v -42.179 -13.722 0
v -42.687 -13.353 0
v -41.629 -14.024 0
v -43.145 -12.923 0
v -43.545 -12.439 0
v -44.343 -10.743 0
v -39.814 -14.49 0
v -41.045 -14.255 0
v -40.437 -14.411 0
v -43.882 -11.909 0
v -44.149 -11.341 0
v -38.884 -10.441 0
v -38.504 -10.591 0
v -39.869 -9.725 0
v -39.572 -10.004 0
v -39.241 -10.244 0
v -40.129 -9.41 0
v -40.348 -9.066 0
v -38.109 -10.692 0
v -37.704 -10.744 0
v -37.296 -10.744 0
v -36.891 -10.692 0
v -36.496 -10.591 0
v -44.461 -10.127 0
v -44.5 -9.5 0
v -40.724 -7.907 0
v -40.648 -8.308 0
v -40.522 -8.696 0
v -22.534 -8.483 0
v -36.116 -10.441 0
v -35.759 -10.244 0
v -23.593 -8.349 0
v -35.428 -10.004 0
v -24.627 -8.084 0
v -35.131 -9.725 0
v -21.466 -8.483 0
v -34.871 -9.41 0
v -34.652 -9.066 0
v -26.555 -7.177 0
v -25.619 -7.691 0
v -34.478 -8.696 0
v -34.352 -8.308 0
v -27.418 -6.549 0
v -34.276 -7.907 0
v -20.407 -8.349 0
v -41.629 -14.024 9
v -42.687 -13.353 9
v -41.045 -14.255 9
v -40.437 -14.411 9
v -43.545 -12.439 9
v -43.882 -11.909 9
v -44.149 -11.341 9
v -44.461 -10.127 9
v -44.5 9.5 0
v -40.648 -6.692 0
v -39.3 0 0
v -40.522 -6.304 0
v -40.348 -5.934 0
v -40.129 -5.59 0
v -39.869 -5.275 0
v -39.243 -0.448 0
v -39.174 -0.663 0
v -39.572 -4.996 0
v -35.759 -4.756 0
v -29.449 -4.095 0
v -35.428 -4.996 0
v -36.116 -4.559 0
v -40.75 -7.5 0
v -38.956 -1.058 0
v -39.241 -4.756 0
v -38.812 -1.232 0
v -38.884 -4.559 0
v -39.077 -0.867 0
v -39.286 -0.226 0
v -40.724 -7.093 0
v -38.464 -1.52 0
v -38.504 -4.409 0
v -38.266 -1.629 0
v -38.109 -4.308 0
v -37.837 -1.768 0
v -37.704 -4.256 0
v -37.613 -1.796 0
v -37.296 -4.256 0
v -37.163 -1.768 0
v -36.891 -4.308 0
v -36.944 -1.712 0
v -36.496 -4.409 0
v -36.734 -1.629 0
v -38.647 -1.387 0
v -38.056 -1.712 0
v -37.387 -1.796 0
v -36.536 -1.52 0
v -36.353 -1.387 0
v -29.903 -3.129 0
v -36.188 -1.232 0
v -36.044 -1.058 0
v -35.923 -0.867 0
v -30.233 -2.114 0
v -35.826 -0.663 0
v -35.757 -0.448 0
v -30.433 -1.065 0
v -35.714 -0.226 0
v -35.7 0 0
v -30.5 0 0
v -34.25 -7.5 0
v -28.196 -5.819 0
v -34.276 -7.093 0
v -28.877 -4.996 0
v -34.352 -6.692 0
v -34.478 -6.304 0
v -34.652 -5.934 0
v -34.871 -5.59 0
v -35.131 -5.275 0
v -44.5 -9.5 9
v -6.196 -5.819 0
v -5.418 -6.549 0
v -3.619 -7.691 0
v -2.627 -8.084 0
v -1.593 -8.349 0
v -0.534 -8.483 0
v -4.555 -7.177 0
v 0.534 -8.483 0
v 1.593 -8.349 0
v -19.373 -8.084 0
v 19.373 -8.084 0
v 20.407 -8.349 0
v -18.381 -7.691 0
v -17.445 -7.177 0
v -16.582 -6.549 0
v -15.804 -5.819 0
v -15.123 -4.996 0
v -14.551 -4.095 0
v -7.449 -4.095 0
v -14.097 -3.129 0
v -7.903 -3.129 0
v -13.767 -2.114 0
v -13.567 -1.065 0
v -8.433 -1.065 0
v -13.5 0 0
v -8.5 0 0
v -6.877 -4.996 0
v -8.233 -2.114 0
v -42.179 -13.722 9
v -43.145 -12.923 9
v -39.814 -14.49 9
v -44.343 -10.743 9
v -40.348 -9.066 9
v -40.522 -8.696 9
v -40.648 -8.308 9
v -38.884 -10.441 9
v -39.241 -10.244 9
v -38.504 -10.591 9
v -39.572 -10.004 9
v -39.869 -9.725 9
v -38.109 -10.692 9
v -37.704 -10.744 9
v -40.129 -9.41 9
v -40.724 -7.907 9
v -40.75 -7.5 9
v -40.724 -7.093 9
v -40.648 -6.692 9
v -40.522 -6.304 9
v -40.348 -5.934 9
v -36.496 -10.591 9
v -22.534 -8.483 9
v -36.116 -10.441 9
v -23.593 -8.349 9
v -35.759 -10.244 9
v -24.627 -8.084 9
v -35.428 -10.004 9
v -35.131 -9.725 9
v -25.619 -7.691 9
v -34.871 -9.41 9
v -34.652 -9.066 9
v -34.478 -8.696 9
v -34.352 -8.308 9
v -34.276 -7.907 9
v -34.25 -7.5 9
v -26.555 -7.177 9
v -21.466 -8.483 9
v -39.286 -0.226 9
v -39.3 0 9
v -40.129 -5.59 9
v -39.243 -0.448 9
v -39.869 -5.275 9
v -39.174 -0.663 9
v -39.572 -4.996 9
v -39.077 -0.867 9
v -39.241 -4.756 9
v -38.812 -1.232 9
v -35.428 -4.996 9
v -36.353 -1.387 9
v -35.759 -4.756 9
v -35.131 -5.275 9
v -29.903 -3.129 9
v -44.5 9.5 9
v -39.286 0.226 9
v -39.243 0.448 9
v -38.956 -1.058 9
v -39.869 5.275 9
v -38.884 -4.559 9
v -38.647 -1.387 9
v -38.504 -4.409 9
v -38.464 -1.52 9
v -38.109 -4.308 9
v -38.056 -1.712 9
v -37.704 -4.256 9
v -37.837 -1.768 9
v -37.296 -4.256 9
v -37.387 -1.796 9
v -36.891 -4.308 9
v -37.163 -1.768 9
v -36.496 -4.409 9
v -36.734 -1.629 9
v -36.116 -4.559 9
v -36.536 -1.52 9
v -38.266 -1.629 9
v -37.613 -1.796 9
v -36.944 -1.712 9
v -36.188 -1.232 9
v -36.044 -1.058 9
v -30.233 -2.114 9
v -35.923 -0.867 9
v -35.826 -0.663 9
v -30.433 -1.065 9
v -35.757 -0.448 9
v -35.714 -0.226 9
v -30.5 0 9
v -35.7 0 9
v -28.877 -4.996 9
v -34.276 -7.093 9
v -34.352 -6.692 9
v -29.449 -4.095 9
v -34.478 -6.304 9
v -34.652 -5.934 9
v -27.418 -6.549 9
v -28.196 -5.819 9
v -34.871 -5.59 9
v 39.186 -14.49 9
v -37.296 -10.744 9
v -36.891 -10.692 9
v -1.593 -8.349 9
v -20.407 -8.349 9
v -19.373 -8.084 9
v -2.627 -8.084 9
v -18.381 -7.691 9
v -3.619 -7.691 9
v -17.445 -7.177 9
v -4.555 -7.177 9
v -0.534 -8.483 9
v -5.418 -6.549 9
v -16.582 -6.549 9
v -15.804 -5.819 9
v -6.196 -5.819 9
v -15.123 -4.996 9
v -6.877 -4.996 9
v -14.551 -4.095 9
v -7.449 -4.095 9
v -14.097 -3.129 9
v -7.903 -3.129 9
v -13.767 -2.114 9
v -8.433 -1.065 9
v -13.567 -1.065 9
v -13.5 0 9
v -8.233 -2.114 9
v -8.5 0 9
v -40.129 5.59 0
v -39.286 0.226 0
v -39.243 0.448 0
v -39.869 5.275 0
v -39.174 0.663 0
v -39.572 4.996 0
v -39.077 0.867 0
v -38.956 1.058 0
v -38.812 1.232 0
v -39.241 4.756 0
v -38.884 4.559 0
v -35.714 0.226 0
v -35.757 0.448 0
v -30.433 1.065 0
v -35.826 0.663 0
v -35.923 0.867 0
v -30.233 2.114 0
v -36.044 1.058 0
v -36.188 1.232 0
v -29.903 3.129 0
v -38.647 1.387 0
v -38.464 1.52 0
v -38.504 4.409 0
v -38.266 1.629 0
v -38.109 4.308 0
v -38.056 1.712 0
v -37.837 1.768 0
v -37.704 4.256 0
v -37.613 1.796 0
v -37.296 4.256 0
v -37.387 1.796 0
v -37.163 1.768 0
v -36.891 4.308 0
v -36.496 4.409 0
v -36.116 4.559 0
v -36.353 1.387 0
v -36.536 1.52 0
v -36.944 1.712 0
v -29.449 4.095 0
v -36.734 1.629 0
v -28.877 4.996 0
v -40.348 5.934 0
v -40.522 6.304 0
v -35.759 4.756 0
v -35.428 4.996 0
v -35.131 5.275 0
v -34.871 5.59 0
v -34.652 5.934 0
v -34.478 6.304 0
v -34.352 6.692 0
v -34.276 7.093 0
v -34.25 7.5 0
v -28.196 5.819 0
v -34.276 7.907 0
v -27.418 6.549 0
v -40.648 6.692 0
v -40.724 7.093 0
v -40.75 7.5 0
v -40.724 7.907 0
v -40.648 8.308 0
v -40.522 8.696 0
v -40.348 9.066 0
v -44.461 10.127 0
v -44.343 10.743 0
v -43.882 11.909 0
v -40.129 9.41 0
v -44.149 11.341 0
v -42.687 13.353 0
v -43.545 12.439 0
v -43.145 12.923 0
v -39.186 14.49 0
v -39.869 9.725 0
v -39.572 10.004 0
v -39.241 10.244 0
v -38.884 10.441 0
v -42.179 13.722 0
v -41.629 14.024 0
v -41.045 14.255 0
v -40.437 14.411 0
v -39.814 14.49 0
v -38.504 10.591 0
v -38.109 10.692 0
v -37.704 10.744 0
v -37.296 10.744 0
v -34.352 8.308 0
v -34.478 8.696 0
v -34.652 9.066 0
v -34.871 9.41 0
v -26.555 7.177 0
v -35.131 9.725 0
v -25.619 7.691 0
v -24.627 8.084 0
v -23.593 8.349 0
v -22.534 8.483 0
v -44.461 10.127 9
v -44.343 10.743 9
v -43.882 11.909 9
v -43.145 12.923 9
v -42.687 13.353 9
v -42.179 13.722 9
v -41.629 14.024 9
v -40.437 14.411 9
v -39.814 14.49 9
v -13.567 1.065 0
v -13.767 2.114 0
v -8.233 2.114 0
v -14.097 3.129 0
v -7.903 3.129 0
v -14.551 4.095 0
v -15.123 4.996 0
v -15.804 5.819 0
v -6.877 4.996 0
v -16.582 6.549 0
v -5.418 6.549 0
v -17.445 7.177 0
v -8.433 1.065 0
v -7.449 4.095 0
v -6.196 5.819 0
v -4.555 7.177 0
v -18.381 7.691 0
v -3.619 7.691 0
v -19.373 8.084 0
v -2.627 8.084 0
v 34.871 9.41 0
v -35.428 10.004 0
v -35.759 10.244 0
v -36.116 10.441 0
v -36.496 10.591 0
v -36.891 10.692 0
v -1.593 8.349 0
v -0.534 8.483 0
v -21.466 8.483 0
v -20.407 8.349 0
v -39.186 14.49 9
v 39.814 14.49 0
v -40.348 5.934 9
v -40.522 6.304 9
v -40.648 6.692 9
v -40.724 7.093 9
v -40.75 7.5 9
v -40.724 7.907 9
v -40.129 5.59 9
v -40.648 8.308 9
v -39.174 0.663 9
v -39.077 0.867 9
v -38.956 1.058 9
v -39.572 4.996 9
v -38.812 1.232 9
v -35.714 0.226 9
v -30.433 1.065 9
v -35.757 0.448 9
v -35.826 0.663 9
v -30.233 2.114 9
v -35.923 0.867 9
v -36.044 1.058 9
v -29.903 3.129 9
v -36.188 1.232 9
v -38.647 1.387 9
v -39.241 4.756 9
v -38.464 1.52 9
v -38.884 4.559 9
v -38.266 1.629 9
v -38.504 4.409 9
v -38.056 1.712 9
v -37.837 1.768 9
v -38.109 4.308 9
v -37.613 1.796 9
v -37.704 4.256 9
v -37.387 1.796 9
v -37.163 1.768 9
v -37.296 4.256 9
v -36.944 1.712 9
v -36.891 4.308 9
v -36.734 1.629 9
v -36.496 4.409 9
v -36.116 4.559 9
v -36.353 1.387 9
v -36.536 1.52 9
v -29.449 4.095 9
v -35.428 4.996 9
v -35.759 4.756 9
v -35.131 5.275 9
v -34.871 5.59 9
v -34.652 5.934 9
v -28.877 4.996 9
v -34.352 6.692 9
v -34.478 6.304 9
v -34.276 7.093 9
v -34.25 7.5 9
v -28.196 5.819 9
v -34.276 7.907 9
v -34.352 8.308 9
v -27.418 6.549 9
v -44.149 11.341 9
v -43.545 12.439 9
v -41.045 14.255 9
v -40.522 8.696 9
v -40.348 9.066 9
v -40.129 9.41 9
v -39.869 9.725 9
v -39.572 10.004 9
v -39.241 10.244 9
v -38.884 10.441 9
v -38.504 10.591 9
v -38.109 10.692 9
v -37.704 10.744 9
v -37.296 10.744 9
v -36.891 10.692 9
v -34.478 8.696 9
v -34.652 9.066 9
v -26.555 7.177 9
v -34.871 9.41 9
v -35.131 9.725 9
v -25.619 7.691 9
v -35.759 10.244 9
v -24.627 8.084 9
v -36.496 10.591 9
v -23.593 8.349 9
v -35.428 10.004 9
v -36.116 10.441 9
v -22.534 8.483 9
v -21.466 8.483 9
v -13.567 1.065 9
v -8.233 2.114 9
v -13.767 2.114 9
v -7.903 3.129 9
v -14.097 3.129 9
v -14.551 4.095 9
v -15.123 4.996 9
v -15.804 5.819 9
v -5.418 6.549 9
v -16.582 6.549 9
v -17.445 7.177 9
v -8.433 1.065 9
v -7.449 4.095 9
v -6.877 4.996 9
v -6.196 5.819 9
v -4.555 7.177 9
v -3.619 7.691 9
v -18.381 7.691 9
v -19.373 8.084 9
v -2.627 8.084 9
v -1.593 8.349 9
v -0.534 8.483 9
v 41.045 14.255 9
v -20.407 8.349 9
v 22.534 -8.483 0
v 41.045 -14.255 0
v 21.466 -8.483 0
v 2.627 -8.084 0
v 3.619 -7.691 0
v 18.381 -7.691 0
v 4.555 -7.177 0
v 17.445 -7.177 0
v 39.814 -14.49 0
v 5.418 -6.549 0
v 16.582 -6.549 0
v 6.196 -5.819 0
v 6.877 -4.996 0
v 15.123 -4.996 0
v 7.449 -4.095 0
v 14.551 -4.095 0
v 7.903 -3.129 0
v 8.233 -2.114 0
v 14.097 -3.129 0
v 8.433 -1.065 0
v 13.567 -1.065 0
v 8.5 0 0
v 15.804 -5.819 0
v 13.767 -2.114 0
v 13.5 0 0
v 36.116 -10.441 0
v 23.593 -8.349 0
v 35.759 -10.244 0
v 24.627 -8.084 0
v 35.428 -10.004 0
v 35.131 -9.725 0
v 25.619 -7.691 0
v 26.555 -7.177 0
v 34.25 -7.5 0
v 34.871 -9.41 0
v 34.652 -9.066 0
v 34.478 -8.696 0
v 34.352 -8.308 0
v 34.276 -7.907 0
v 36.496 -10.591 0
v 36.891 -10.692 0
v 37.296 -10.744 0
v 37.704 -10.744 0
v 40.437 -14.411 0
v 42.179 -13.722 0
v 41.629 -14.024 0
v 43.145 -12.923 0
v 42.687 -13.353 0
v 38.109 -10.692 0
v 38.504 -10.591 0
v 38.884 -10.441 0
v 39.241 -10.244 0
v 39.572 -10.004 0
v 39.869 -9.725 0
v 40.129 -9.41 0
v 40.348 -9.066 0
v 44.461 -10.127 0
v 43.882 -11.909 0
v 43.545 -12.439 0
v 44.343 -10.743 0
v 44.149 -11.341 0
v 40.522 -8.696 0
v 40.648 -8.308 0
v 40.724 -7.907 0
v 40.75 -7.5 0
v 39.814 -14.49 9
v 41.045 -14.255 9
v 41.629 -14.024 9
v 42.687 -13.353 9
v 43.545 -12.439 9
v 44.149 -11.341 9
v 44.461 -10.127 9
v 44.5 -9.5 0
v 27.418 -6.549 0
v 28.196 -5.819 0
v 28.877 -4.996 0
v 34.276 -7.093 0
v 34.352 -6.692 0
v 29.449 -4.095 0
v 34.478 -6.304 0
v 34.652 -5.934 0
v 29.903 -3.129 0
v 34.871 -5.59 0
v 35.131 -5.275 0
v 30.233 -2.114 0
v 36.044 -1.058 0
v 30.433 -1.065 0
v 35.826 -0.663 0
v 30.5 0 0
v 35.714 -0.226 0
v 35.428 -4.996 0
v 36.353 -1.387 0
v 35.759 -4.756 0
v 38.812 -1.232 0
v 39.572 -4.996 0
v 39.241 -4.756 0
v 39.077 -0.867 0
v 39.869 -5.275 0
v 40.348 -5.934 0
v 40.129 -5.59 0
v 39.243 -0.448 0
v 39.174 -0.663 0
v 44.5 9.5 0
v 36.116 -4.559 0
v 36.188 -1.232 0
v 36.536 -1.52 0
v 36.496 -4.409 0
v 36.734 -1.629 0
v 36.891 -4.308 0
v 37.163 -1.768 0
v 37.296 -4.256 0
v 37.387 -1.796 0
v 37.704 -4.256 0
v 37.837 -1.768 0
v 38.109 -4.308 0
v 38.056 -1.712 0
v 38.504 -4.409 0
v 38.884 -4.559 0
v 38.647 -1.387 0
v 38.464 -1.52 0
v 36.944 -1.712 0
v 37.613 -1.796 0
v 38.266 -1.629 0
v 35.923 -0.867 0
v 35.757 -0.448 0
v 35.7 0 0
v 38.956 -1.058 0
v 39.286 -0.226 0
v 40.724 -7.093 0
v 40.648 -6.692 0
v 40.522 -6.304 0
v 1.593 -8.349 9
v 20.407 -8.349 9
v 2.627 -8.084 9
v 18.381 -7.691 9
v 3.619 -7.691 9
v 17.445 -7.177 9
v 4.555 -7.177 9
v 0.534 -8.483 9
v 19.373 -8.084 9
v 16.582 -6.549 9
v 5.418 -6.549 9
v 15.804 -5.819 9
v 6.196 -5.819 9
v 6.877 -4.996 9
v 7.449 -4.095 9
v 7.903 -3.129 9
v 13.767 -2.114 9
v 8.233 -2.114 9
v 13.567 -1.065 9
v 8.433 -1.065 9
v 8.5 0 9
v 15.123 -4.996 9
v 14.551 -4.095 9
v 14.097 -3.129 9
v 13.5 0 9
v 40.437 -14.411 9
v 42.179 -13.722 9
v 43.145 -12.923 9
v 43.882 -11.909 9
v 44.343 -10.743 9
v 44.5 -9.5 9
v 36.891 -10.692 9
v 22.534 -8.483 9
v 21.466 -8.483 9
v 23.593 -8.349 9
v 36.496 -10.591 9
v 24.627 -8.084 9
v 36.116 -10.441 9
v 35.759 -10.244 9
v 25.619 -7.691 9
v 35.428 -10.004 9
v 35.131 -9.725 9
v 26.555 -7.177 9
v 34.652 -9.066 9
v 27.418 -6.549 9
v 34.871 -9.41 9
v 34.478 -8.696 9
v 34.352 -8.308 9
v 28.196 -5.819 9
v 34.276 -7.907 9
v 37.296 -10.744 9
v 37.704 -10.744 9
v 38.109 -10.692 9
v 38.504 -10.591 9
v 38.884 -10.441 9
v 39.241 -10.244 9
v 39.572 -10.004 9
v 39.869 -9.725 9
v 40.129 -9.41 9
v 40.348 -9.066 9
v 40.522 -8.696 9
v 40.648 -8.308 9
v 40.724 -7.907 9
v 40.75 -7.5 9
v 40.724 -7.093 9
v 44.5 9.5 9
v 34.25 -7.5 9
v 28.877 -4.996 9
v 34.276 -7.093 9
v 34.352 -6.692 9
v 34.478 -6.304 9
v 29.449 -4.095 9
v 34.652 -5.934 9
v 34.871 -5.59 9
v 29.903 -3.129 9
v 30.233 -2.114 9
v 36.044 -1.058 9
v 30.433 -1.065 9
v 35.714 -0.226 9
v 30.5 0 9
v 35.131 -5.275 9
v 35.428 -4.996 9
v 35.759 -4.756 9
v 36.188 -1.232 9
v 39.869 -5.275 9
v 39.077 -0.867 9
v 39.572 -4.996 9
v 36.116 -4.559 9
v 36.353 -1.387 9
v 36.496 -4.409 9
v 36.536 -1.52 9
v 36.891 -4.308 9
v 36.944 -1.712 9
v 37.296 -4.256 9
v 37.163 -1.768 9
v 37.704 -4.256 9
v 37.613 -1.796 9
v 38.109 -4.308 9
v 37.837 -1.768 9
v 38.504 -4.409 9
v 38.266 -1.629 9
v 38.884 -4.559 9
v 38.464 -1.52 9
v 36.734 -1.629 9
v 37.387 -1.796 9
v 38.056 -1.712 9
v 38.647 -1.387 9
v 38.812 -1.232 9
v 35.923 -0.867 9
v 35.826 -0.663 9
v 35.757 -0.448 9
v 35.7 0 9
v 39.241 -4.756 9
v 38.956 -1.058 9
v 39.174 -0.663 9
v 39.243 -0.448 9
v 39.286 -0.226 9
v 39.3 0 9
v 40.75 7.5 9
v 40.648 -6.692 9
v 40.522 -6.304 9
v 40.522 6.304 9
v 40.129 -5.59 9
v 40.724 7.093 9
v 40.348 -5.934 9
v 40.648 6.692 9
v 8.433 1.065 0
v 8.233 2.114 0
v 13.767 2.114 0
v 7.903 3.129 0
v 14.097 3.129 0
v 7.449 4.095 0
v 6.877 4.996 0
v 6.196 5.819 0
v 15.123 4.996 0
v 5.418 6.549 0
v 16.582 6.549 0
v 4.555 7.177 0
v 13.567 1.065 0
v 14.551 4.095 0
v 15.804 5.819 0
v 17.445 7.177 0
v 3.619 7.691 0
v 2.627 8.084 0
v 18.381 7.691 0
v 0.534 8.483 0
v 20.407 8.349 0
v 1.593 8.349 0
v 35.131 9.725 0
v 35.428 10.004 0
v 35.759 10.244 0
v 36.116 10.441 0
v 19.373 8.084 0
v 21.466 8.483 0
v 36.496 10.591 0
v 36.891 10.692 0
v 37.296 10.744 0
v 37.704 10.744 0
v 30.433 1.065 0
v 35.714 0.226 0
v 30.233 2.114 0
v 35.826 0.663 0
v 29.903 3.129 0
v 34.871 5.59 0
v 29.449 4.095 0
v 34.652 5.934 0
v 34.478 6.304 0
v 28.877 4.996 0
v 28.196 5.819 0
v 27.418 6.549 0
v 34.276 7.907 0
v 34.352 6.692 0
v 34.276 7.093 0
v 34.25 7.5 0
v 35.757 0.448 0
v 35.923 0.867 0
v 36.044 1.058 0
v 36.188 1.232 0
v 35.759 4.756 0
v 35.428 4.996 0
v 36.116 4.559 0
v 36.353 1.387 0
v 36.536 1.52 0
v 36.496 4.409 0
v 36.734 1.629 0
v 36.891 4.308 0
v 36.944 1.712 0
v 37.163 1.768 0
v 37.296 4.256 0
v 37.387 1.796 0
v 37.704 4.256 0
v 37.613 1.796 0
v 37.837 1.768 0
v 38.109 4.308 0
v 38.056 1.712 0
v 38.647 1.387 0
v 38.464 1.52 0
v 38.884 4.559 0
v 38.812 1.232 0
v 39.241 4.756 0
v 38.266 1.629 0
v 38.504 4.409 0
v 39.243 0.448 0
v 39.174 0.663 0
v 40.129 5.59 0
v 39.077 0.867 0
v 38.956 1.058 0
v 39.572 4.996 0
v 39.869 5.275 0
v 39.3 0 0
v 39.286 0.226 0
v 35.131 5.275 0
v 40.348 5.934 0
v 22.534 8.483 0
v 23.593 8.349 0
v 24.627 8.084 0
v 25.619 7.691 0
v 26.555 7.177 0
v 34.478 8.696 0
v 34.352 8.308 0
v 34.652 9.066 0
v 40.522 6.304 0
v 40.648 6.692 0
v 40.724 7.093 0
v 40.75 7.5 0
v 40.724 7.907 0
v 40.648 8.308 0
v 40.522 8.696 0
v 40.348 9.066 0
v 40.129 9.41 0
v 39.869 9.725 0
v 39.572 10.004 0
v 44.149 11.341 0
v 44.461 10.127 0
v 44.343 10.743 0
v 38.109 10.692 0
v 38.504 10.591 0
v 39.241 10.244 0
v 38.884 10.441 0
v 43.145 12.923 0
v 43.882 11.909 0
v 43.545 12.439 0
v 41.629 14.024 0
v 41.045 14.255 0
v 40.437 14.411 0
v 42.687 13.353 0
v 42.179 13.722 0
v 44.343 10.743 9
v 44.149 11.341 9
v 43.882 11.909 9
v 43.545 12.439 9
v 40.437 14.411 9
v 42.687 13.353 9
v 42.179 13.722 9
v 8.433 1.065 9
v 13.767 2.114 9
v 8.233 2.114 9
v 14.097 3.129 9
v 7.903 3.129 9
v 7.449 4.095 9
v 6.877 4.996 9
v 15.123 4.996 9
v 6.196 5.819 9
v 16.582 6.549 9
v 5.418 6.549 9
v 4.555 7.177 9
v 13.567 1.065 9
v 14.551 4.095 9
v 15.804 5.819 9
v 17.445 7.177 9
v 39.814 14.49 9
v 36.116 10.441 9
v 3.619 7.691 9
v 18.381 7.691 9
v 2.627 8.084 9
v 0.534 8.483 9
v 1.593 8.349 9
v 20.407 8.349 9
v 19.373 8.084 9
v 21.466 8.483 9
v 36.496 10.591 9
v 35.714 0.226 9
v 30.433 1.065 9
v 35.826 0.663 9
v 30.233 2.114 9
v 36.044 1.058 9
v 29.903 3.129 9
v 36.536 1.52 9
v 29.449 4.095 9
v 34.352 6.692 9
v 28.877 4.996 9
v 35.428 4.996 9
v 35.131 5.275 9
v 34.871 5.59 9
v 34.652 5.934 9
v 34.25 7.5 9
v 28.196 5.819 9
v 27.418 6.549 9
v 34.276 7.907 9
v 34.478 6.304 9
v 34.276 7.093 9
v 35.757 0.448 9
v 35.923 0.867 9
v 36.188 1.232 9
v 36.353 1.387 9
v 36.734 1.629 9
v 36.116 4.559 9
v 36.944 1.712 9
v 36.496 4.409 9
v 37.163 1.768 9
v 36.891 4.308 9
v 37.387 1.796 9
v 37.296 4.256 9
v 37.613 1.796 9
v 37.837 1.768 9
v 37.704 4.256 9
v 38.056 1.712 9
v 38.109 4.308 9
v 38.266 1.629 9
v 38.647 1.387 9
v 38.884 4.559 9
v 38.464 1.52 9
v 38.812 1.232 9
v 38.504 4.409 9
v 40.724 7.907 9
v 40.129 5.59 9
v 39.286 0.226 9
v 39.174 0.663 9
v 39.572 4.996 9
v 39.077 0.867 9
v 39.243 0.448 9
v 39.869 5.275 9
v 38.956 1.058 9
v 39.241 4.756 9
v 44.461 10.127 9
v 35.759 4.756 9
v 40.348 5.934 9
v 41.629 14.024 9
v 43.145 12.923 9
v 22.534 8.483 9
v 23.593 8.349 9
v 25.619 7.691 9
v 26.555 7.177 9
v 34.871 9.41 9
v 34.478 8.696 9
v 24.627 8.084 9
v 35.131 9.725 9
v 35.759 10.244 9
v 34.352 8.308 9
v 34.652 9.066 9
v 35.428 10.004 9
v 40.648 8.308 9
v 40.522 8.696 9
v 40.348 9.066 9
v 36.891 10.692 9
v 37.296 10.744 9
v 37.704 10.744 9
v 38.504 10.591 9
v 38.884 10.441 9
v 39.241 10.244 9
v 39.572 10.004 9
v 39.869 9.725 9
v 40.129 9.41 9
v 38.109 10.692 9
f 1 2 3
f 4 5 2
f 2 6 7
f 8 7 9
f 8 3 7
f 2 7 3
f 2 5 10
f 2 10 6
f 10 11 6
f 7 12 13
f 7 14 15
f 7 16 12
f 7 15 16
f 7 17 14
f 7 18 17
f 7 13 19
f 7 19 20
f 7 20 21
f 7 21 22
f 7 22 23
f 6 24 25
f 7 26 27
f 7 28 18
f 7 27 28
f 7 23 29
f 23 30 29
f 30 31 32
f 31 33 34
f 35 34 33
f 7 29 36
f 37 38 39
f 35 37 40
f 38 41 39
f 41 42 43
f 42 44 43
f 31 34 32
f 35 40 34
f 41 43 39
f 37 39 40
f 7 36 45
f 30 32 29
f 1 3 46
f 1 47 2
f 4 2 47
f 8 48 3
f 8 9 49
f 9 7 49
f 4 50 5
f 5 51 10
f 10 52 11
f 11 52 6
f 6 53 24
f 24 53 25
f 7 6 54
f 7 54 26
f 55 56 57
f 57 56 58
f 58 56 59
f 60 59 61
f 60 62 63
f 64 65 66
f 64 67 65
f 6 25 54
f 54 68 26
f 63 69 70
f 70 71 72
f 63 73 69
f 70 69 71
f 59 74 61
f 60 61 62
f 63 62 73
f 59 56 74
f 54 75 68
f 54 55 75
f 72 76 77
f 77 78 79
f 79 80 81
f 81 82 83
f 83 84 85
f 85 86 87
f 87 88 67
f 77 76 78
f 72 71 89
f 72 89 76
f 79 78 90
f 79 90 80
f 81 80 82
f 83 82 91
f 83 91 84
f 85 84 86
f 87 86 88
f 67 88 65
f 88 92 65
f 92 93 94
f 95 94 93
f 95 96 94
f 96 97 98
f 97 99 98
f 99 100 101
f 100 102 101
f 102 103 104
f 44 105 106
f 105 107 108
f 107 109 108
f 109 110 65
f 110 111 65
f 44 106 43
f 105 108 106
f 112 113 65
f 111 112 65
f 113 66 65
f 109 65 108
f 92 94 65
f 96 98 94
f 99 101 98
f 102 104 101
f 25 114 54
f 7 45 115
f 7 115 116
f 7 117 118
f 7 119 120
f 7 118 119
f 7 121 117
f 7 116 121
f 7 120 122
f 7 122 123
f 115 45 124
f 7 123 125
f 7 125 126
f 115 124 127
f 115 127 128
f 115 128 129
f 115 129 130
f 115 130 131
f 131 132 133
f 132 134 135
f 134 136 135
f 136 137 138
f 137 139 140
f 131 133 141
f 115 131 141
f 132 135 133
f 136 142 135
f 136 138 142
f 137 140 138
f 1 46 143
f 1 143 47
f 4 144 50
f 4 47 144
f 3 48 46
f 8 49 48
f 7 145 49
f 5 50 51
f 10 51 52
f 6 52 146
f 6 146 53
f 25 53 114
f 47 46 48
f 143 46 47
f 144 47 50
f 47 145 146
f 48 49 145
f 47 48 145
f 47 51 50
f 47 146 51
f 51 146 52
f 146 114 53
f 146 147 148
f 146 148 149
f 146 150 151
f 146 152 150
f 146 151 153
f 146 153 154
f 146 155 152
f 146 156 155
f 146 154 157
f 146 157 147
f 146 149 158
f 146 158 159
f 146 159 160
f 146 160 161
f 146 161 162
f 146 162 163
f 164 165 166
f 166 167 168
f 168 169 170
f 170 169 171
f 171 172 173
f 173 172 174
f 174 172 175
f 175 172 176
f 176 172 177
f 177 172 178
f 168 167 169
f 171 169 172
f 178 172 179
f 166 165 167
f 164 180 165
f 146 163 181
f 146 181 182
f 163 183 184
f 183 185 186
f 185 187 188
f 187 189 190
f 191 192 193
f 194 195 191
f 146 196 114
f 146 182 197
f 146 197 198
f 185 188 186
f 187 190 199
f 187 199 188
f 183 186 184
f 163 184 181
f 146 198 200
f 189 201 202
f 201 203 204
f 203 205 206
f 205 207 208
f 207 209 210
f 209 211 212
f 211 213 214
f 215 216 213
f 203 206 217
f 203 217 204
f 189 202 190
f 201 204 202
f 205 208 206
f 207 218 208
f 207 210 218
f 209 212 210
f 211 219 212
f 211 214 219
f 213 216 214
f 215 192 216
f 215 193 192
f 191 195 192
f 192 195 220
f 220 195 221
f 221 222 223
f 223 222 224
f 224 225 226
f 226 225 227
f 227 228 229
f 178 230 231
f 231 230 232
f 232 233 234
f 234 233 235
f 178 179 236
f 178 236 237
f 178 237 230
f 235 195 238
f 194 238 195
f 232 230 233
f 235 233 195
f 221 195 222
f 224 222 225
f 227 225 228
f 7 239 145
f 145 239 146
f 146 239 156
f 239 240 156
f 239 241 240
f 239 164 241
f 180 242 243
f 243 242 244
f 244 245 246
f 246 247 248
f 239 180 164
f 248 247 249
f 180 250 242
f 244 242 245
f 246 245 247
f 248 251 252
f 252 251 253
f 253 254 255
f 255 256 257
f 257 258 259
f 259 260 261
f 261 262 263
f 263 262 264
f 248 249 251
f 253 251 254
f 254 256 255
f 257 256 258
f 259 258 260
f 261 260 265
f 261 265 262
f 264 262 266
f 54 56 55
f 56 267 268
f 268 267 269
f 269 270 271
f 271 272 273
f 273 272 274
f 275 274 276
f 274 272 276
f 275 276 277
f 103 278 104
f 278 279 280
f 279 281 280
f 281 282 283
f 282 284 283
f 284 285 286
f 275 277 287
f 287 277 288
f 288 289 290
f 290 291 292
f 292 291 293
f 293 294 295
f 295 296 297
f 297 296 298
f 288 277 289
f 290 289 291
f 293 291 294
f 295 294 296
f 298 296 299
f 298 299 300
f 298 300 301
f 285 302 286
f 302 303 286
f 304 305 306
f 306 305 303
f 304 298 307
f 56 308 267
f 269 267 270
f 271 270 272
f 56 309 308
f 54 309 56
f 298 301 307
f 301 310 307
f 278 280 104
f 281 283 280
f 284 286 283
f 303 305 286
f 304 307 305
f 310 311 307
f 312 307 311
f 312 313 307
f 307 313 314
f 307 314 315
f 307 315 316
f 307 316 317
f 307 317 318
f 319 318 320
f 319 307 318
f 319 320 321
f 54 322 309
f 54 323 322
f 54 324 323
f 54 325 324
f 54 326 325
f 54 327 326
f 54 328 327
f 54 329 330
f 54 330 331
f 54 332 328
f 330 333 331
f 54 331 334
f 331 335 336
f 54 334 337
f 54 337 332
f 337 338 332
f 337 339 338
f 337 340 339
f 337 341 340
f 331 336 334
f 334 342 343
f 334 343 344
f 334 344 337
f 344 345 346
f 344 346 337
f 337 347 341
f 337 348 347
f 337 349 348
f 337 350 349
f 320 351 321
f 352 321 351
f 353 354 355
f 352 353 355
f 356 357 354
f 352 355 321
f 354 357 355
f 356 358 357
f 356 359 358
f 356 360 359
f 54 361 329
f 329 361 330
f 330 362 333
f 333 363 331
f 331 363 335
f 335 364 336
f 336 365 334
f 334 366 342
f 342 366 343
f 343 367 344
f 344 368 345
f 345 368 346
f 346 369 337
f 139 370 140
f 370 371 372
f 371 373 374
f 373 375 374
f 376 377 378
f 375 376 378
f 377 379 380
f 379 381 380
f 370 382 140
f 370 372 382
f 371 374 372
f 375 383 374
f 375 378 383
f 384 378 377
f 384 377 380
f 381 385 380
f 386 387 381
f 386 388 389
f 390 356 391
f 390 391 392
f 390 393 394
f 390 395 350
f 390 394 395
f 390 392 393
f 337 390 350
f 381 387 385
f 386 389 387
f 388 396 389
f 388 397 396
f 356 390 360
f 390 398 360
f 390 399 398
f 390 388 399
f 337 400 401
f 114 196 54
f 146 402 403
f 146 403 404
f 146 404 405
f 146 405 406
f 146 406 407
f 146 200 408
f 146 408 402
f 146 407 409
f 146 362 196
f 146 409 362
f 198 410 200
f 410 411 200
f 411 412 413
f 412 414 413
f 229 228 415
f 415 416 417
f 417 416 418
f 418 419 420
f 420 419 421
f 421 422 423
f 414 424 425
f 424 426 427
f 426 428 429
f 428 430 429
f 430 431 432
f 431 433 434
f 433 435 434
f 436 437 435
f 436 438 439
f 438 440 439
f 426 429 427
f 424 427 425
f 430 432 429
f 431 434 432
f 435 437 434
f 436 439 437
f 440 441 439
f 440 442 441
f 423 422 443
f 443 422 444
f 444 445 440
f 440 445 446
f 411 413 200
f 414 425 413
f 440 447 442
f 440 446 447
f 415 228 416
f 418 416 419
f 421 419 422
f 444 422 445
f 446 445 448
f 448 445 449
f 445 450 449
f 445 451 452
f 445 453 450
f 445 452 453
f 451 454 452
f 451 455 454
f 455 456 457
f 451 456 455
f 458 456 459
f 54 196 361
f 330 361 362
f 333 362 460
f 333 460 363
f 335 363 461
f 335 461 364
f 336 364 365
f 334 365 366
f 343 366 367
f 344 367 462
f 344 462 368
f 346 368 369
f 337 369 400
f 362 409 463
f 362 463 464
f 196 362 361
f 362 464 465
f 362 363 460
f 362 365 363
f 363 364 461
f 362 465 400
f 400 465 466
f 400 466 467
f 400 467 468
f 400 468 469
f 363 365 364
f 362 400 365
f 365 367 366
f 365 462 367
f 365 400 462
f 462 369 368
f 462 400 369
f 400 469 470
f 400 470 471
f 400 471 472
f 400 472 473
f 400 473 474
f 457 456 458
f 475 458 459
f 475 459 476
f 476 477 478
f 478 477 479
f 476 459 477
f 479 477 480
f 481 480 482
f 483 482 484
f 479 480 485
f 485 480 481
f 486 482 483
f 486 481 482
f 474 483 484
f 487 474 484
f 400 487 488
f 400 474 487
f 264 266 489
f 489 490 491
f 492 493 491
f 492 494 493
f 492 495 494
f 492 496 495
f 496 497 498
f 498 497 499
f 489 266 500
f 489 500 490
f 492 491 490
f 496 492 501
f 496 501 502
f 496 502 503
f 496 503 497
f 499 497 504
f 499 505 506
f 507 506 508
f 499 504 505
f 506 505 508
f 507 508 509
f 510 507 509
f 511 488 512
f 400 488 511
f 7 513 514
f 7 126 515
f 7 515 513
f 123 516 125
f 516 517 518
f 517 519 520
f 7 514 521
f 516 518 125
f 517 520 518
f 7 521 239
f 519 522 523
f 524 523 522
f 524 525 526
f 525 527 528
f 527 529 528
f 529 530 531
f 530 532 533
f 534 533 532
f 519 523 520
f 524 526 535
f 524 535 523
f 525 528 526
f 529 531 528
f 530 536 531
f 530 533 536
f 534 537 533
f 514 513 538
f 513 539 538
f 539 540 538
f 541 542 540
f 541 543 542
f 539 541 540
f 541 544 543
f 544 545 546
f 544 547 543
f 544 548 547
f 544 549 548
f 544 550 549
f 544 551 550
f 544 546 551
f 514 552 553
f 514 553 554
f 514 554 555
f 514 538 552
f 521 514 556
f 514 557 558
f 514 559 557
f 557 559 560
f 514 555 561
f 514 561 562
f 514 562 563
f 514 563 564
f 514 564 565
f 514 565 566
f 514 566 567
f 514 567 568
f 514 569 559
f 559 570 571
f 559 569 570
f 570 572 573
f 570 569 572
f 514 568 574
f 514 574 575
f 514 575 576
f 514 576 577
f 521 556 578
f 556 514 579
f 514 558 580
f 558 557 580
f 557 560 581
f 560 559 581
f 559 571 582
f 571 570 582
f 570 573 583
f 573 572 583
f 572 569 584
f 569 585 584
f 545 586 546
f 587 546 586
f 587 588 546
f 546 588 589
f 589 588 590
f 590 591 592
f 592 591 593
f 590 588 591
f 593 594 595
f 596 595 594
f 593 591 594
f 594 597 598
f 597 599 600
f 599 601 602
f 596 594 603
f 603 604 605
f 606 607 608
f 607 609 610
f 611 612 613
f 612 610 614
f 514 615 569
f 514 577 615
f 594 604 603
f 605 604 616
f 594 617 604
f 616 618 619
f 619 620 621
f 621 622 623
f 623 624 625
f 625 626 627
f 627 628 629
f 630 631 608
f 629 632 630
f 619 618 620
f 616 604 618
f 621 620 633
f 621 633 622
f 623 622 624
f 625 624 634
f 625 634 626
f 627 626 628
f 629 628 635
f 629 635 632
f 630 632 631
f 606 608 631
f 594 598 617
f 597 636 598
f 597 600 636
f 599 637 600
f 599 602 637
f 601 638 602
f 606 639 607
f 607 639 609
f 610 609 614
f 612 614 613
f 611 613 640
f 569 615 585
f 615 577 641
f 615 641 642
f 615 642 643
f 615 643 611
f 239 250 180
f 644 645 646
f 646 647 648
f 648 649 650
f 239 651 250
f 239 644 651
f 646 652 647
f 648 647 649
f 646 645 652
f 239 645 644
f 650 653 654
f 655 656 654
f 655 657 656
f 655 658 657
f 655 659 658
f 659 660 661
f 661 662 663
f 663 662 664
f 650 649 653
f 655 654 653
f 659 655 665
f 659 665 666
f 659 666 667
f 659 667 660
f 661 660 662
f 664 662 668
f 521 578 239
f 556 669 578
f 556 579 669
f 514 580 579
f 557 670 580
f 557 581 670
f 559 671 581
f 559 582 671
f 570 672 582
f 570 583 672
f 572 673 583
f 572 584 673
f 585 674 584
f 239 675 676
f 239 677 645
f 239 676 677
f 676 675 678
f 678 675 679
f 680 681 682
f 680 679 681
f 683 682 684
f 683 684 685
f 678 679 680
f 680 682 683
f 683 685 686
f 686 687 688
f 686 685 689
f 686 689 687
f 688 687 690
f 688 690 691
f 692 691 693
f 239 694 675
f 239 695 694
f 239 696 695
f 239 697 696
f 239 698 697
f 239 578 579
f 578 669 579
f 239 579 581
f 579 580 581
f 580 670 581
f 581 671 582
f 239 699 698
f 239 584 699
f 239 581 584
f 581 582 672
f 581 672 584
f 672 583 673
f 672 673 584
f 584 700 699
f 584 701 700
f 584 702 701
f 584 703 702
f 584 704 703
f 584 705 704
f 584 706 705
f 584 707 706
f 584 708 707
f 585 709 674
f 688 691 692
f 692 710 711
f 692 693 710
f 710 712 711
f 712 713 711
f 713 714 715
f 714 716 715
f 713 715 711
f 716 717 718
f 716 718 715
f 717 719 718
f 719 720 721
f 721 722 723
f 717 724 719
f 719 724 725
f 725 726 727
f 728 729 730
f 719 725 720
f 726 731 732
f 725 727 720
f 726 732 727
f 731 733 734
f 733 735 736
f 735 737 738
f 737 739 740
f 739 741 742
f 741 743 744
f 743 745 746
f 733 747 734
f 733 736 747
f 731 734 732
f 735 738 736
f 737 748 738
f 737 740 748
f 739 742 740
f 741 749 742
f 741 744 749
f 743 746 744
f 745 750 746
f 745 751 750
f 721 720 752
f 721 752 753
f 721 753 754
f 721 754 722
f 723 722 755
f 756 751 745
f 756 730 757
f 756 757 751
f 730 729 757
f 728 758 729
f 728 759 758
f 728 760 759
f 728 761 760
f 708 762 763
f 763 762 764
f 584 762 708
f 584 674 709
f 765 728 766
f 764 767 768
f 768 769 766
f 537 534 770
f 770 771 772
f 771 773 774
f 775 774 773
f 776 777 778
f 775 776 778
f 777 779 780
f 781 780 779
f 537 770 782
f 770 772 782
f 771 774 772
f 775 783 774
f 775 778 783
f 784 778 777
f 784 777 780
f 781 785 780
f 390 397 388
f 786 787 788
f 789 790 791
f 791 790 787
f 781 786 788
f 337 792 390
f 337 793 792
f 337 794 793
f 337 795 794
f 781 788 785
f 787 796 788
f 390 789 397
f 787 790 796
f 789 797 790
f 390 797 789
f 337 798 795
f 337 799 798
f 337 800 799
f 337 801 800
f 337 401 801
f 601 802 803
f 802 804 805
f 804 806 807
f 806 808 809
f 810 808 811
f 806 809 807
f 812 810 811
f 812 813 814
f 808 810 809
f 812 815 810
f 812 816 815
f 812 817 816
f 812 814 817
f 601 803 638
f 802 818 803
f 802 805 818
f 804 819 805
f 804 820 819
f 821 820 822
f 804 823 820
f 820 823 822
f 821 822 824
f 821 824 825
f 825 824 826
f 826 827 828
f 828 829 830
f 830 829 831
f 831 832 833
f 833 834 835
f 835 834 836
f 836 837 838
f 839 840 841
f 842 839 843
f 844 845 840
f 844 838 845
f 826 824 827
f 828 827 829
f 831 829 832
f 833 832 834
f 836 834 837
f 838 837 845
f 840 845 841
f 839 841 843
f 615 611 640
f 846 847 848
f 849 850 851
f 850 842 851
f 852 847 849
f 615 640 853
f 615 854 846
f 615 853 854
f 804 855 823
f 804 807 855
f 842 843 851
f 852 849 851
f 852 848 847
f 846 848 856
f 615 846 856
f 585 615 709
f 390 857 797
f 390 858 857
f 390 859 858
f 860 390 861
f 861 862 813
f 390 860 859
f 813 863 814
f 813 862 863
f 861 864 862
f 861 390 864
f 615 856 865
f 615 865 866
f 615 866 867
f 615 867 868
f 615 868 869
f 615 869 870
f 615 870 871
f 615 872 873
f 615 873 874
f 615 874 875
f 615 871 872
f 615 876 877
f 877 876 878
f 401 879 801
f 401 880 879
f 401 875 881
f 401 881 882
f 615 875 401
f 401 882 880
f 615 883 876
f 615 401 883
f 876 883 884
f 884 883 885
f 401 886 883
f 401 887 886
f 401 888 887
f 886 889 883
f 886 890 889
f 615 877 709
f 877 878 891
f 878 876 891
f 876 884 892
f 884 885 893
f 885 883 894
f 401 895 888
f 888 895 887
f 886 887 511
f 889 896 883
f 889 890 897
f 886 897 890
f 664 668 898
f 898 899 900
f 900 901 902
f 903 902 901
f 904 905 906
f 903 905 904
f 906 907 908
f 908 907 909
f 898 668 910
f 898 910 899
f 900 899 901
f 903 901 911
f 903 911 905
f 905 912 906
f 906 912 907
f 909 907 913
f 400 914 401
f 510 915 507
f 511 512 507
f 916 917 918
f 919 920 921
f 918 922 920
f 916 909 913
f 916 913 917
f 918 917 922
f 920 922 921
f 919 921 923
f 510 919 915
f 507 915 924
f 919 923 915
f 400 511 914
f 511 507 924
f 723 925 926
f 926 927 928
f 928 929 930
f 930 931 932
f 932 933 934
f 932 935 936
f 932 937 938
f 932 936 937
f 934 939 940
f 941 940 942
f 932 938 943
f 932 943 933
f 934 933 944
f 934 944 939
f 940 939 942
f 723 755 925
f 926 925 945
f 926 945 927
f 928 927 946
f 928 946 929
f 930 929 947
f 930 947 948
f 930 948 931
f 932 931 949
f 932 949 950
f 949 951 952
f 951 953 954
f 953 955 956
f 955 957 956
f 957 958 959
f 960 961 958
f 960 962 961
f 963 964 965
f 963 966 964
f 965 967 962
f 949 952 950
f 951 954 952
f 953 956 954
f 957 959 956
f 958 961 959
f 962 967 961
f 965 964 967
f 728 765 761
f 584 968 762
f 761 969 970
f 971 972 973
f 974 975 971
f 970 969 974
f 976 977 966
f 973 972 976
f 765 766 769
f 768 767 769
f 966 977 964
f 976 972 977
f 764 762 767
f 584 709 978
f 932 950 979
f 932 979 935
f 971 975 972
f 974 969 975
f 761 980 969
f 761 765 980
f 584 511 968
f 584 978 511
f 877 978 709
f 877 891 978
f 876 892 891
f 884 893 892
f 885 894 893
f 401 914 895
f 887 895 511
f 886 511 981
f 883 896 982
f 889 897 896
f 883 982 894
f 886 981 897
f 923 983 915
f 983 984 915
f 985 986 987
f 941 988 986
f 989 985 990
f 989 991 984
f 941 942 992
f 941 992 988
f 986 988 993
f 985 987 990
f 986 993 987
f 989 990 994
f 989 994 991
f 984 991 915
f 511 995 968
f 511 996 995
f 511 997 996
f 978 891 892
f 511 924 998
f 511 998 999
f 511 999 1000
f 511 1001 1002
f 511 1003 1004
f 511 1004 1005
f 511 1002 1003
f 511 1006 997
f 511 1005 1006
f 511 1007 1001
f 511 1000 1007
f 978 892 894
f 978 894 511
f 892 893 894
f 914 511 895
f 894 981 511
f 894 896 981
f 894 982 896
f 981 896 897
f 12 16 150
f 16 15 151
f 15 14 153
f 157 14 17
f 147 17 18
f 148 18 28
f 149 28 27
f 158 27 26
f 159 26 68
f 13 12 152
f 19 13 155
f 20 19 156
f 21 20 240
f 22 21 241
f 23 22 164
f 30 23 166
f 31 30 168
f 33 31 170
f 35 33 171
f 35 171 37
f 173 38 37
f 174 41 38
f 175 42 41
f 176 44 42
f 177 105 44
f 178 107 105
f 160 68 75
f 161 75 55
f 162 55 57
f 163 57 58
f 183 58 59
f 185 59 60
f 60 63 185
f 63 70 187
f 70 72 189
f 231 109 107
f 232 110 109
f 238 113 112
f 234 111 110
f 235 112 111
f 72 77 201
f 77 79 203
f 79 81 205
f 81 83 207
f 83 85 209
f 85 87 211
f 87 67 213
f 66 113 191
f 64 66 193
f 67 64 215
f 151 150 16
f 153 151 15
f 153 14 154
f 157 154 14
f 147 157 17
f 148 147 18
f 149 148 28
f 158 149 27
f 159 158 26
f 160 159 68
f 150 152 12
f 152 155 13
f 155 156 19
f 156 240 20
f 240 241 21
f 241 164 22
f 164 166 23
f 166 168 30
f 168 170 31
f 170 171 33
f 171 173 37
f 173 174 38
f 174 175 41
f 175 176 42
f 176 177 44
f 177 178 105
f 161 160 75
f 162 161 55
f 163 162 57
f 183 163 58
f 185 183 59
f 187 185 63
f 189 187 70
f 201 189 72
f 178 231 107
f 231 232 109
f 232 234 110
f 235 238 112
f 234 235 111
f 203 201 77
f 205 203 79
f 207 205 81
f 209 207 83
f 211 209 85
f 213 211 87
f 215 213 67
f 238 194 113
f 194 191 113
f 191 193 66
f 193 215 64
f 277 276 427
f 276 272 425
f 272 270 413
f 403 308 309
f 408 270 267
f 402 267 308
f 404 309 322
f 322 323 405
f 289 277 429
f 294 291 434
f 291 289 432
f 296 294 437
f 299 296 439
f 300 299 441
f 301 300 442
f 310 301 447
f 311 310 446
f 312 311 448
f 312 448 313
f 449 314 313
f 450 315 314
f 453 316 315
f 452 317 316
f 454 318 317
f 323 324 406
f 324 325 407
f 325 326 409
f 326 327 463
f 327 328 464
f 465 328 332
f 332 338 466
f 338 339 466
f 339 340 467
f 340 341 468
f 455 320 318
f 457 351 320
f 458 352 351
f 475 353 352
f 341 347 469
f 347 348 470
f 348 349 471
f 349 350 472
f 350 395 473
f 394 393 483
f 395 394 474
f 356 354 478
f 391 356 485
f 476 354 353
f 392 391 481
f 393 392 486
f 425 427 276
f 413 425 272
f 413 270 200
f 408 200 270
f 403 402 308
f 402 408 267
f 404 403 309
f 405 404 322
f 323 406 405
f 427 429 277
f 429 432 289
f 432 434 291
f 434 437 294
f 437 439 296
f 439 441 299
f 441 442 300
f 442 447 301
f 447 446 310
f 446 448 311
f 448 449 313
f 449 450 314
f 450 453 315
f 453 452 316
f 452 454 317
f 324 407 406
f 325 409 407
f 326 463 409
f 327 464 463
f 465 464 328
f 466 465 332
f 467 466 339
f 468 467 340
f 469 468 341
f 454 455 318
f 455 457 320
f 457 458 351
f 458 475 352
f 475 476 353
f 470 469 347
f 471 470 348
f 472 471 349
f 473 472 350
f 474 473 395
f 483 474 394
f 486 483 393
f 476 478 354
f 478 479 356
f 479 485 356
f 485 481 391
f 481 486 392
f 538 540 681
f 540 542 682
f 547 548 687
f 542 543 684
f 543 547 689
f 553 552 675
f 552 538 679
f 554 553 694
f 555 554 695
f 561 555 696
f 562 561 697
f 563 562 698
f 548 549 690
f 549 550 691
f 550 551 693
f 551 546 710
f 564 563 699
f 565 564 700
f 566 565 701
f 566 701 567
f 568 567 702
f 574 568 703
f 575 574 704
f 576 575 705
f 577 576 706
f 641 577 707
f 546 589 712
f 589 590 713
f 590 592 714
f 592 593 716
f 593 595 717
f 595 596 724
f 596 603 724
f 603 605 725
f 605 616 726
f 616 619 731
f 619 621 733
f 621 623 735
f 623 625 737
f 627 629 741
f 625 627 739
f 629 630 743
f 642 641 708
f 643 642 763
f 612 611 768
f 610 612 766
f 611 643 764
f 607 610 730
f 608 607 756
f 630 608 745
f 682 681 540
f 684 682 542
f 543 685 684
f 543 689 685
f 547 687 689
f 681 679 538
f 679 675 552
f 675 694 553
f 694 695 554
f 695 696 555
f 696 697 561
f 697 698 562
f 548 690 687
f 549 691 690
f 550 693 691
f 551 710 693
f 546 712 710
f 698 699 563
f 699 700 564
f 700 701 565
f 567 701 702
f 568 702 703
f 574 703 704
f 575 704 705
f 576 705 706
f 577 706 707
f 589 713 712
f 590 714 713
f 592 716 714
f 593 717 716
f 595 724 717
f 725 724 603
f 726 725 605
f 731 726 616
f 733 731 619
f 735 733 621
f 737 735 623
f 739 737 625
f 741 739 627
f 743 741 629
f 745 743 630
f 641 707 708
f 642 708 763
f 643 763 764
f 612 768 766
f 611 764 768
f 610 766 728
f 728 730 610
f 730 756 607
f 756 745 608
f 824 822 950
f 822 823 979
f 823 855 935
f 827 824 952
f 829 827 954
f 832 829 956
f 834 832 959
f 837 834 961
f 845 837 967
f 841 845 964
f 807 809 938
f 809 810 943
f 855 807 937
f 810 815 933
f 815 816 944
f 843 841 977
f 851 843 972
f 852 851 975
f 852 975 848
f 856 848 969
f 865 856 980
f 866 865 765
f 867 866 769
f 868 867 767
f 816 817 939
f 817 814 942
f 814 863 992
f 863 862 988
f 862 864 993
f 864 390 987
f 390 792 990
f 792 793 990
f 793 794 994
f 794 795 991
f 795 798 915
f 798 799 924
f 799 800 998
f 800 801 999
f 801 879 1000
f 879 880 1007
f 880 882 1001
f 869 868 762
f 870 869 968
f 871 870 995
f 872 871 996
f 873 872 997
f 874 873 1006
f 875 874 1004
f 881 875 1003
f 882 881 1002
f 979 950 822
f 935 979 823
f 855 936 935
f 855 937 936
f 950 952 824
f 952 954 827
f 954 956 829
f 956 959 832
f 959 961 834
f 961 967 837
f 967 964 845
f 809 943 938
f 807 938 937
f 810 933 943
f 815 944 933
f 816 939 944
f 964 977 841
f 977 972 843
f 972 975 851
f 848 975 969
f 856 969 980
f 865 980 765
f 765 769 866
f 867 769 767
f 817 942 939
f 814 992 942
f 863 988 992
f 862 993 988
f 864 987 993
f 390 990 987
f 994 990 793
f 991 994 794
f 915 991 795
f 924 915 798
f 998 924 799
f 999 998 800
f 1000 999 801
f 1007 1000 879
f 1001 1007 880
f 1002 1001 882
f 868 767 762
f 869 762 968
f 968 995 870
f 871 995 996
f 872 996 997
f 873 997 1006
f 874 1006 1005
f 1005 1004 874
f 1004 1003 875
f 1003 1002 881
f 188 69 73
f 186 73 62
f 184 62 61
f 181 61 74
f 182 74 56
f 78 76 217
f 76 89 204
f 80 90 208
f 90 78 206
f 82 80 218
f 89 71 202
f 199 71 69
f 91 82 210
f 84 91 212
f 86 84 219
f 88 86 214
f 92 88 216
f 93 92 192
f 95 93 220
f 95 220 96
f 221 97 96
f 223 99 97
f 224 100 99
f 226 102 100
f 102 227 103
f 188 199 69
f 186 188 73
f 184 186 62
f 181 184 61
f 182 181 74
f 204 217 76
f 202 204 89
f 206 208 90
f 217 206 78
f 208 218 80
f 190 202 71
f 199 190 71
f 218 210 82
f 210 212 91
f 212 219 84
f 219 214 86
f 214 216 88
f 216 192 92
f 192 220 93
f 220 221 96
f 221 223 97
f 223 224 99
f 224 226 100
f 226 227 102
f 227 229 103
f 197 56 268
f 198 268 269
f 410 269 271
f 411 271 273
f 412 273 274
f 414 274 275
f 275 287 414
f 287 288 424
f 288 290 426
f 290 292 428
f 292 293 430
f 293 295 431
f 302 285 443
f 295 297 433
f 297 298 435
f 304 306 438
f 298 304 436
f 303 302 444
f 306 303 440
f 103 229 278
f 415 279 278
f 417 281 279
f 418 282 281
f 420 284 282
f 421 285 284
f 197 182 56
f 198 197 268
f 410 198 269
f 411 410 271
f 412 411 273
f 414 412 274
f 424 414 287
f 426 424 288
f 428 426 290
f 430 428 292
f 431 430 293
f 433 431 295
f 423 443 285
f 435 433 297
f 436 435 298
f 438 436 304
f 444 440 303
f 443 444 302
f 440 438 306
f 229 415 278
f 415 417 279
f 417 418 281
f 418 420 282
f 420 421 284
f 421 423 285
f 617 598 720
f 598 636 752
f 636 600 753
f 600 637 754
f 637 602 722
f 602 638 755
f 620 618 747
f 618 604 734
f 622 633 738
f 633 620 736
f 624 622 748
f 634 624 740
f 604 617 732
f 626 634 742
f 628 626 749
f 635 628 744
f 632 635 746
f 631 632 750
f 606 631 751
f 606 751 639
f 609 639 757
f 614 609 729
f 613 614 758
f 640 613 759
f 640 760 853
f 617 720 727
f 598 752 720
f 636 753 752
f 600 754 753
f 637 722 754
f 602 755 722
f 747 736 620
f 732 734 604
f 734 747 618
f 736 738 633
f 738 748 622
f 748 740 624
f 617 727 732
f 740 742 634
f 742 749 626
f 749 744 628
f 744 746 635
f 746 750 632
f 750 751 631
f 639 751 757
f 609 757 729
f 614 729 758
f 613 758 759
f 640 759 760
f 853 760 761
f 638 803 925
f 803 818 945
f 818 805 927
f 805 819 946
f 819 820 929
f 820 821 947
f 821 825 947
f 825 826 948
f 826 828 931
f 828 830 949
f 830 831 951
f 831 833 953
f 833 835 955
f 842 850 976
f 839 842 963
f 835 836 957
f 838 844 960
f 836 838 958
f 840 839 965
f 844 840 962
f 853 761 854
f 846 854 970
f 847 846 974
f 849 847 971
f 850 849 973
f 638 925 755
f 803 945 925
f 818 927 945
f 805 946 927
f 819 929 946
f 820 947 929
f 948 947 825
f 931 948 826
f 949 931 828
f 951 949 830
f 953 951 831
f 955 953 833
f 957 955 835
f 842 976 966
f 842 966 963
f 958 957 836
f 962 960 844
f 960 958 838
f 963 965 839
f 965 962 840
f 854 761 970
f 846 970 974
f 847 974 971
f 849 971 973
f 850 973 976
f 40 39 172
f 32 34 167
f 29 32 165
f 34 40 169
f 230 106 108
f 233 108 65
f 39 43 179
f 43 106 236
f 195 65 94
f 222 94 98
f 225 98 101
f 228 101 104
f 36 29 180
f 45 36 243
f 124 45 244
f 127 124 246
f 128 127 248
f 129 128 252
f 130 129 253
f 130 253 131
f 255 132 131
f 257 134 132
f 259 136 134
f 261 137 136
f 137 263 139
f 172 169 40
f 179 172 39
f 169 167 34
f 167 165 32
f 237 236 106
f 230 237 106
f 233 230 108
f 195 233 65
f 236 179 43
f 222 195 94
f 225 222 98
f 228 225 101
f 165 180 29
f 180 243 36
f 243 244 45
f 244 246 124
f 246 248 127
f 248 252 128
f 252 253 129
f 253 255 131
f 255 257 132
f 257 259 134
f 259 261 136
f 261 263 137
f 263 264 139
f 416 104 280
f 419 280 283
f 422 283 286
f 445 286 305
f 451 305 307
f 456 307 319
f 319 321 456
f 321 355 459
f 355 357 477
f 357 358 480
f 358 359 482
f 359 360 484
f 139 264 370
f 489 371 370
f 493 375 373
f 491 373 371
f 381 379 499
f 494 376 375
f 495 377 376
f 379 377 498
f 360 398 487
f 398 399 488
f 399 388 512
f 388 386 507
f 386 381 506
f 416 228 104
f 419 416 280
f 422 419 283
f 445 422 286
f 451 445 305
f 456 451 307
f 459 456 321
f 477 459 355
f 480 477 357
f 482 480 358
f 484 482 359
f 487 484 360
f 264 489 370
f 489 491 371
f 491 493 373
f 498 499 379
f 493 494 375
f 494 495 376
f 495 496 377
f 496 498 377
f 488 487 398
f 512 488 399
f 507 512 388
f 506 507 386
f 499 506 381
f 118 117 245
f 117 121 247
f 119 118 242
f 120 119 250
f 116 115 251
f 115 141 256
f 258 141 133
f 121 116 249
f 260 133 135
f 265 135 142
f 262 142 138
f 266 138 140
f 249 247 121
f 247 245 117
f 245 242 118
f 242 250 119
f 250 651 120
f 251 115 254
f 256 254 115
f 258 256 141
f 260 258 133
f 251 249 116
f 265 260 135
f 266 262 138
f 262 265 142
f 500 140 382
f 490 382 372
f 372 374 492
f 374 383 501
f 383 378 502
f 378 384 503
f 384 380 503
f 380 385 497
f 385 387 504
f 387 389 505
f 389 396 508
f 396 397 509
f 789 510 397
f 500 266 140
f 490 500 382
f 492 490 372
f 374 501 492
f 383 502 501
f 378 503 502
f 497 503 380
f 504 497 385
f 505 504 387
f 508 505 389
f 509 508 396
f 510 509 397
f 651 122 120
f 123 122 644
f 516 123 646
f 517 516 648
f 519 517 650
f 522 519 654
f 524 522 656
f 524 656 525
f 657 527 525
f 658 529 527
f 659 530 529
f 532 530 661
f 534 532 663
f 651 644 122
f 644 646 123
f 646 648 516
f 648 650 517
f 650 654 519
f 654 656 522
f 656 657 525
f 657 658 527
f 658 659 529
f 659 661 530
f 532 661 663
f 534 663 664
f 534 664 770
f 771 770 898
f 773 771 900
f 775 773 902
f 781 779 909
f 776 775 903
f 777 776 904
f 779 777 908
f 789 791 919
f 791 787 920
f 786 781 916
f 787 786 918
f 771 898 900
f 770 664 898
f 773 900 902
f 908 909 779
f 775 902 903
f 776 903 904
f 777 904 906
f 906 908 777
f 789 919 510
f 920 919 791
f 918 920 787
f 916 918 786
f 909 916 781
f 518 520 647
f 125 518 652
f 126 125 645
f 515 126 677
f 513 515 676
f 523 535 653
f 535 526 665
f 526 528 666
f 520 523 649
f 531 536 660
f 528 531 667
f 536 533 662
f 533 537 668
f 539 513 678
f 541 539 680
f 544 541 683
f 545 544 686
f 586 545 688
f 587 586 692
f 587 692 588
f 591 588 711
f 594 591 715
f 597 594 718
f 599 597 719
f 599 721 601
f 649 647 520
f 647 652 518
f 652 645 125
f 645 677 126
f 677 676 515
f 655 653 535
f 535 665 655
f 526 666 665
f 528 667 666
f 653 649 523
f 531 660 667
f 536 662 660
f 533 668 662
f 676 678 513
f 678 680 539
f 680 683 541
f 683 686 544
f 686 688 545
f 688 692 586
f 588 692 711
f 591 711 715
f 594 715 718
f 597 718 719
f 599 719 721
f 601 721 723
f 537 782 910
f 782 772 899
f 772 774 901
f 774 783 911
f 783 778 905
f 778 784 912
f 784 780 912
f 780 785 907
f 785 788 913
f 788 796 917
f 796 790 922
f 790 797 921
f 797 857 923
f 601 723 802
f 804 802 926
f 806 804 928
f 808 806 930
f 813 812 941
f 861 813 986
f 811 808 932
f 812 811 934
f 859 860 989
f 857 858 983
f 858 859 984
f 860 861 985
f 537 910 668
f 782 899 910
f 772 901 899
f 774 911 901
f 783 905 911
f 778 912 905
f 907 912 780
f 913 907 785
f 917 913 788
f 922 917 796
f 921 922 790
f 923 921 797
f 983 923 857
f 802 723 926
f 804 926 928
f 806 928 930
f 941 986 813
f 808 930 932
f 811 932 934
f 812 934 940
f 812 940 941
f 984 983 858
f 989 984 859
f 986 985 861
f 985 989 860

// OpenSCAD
$fn = 50;

difference() {
	union() {
		hull() {
			translate(v = [-39.5, 9.5, 0]) {
				cylinder(h = 9, r = 5);
			}
			translate(v = [39.5, 9.5, 0]) {
				cylinder(h = 9, r = 5);
			}
			translate(v = [-39.5, -9.5, 0]) {
				cylinder(h = 9, r = 5);
			}
			translate(v = [39.5, -9.5, 0]) {
				cylinder(h = 9, r = 5);
			}
		}
	}
	union() {
		translate(v = [-37.5, -7.5, 0]) {
			cylinder(h = 9, r = 3.25);
		}
		translate(v = [-37.5, 7.5, 0]) {
			cylinder(h = 9, r = 3.25);
		}
		translate(v = [37.5, -7.5, 0]) {
			cylinder(h = 9, r = 3.25);
		}
		translate(v = [37.5, 7.5, 0]) {
			cylinder(h = 9, r = 3.25);
		}
		translate(v = [-37.5, 0.0, 0]) {
			cylinder(h = 9, r = 1.8);
		}
		translate(v = [37.5, 0.0, 0]) {
			cylinder(h = 9, r = 1.8);
		}
		translate(v = [-22.0, 0, 0.0]) {
			cylinder(h = 9, r = 8.5);
		}
		cylinder(h = 9, r = 8.5);
		translate(v = [22.0, 0, 0.0]) {
			cylinder(h = 9, r = 8.5);
		}
	}
}
